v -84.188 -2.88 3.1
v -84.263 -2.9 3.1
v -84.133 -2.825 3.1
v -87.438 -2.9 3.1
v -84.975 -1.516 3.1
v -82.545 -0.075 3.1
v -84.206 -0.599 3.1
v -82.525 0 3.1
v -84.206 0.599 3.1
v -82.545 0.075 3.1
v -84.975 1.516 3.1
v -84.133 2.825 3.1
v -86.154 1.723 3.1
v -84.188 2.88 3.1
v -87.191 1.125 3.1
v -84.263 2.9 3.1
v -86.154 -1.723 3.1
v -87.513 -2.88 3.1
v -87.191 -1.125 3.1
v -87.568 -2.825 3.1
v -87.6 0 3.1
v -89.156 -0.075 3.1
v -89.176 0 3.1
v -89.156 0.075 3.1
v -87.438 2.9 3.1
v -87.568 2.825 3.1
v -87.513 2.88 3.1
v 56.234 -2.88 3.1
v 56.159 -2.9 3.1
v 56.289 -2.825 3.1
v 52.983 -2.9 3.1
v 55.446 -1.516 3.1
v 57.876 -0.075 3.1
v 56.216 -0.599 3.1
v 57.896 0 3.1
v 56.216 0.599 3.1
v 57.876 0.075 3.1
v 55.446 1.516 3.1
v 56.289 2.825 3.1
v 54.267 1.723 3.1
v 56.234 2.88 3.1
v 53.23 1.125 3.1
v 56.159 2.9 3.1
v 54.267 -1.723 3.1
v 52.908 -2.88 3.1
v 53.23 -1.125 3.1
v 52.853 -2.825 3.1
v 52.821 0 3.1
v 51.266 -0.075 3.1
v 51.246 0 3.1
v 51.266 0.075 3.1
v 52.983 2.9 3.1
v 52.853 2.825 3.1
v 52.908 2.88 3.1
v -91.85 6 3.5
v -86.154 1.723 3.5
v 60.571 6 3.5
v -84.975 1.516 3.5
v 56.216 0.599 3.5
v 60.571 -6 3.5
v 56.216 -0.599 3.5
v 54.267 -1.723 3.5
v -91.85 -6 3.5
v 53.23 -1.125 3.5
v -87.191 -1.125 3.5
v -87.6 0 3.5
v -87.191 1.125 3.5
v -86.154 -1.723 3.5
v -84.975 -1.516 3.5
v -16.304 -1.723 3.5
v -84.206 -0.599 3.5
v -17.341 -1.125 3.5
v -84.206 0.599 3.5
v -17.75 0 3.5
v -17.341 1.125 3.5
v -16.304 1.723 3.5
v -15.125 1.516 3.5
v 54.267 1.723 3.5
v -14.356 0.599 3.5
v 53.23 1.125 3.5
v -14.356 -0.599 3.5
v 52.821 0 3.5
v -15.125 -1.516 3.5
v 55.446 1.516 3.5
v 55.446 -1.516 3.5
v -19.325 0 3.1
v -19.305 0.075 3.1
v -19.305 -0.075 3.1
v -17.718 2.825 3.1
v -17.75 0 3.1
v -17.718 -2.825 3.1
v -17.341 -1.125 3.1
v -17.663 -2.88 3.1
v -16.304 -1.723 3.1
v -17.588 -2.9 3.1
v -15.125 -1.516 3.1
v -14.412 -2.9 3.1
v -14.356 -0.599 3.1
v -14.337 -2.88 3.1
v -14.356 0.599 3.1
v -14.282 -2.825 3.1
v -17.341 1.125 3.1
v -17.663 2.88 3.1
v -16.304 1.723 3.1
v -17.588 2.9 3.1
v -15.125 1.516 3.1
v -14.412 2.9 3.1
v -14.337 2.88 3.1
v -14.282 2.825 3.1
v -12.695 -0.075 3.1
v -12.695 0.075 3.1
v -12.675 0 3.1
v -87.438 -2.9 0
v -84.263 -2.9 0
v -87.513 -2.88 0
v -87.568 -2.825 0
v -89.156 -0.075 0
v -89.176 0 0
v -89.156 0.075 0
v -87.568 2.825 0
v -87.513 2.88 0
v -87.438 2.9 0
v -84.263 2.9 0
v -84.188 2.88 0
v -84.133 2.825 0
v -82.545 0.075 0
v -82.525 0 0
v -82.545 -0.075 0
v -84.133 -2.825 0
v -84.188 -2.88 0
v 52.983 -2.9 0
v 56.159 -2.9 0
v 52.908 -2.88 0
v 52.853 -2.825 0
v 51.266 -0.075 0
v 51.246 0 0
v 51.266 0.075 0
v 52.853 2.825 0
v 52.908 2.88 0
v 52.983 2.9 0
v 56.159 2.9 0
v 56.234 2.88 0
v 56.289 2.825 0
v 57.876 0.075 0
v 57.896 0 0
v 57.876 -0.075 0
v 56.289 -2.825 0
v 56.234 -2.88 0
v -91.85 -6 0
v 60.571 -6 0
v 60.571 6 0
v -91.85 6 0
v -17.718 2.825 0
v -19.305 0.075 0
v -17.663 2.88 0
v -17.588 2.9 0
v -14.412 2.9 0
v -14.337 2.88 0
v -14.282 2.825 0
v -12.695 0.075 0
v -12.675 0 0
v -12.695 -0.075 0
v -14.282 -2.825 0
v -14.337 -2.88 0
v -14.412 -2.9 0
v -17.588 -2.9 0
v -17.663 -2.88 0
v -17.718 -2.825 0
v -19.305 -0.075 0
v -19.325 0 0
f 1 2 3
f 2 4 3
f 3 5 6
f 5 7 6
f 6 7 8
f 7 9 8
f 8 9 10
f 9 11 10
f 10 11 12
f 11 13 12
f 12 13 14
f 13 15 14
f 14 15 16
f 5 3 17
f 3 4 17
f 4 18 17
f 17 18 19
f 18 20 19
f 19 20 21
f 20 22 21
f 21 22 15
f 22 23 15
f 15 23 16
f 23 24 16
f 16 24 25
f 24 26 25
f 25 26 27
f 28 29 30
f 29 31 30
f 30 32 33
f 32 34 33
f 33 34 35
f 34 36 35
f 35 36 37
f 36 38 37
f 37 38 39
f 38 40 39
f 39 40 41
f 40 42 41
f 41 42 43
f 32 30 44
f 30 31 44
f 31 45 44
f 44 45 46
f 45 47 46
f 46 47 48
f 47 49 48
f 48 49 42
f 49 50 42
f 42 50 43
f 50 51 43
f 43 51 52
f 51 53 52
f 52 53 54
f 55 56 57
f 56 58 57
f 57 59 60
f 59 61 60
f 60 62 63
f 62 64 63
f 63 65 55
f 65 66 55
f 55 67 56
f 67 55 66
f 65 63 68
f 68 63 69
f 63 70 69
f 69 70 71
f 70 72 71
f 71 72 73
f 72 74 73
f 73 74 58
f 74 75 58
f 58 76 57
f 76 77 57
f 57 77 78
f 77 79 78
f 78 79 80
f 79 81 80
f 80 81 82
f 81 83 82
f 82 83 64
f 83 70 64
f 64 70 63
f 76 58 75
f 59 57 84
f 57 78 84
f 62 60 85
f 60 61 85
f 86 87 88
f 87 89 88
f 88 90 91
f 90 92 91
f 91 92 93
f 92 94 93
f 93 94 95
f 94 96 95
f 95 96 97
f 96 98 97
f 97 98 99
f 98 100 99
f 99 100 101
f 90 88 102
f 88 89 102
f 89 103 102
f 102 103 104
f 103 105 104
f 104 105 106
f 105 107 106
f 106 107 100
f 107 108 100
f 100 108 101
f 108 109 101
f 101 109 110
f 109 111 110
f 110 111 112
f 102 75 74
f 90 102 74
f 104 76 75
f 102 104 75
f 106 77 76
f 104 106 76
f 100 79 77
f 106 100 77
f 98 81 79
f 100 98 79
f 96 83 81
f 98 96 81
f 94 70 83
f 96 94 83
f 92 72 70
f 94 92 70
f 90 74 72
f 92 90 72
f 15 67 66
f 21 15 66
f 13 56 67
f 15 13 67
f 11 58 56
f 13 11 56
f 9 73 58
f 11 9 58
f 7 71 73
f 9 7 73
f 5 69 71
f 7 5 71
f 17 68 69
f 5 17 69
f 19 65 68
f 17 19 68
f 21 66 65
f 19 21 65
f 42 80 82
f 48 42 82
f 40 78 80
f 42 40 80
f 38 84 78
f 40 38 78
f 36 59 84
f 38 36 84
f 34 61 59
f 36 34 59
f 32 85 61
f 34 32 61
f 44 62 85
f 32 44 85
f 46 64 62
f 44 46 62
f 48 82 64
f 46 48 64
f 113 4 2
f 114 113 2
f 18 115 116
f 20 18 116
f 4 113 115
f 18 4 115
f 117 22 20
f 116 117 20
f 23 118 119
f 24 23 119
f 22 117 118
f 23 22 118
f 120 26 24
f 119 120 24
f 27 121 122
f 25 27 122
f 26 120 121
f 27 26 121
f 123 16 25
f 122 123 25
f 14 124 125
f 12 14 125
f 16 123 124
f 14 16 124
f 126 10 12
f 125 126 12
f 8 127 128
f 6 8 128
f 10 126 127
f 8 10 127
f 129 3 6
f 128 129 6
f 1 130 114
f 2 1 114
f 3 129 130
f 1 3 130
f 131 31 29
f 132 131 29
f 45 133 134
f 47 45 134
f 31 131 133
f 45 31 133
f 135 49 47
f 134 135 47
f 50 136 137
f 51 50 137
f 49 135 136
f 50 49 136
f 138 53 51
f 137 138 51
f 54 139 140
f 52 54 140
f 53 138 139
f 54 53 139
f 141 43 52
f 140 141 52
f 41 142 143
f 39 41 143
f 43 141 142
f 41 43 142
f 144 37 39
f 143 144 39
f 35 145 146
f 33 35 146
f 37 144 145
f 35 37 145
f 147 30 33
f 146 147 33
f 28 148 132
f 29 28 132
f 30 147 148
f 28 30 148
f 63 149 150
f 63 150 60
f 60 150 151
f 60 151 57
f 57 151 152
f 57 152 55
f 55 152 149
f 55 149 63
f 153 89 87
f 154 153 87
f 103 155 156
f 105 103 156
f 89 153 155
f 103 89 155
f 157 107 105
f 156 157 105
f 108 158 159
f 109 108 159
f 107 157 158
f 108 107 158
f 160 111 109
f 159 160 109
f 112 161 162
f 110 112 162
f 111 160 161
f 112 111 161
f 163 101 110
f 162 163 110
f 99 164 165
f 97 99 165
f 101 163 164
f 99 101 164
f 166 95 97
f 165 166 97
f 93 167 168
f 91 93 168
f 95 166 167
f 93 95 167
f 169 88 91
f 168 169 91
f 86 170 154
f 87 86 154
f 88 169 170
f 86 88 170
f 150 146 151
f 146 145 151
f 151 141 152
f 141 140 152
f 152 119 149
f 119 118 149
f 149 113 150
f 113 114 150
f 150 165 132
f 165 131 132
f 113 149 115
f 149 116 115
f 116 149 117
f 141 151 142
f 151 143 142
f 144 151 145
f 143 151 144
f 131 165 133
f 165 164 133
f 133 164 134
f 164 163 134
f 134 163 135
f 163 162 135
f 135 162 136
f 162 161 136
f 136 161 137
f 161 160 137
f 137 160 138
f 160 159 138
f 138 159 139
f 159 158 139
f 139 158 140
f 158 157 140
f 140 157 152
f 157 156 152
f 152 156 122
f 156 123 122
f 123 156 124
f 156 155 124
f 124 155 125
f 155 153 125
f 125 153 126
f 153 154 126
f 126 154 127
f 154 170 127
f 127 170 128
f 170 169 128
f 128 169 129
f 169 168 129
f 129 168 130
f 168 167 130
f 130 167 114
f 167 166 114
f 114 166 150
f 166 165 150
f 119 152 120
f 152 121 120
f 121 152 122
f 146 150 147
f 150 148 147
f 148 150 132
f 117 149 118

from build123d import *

# Parameters (mm, degrees)
SKETCH1_W                      = 152.421392062
SKETCH1_H                      = 12
BOSS_EXTRUDE1_DEPTH            = 3.5
CUT_EXTRUDE1_DEPTH             = 3.1
CUT_EXTRUDE2_DEPTH             = 3.1
CUT_EXTRUDE3_DEPTH             = 3.1
F_3_5_3_5_DIAMETER_HOLE1_D     = 3.5
F_3_5_3_5_DIAMETER_HOLE1_DEPTH = 0.4
FILLET1_R                      = 0.150000007


with BuildPart() as part:
    # Sketch1 → Boss-Extrude1 (new body)
    with BuildSketch(Plane(origin=(0, 0, 0), x_dir=(-1, 0, 0), z_dir=(0, 0, -1))):
        with Locations((15.639629555, 0)):
            Rectangle(SKETCH1_W, SKETCH1_H)
    extrude(amount=-BOSS_EXTRUDE1_DEPTH)

    # Sketch2 → Cut-Extrude1 (cut)
    with BuildSketch(Plane(origin=(0, 0, 0), x_dir=(-1, 0, 0), z_dir=(0, 0, -1))):
        Polygon((17.674321891, -2.900007341), (19.348637675, -7.335e-06), (17.674319972, 2.899992671), (14.325688404, 2.899992671), (12.651373579, -7.889e-06), (14.325690323, -2.900007341), align=None)
    extrude(amount=-CUT_EXTRUDE1_DEPTH, mode=Mode.SUBTRACT)

    # Sketch3 → Cut-Extrude2 (cut)
    with BuildSketch(Plane(origin=(0, 0, 0), x_dir=(-1, 0, 0), z_dir=(0, 0, -1))):
        Polygon((-57.919692896, -7.889e-06), (-56.245376153, -2.900007341), (-52.896744585, -2.900007341), (-51.2224288, -7.335e-06), (-52.896746503, 2.899992671), (-56.245378072, 2.899992671), align=None)
    extrude(amount=-CUT_EXTRUDE2_DEPTH, mode=Mode.SUBTRACT)

    # Sketch4 → Cut-Extrude3 (cut)
    with BuildSketch(Plane(origin=(0, 0, 0), x_dir=(-1, 0, 0), z_dir=(0, 0, -1))):
        Polygon((82.501699166, -7.889e-06), (84.176015909, -2.900007341), (87.524647477, -2.900007341), (89.198963262, -7.335e-06), (87.524645559, 2.899992671), (84.17601399, 2.899992671), align=None)
    extrude(amount=-CUT_EXTRUDE3_DEPTH, mode=Mode.SUBTRACT)

    # Ø3.5 (3.5) Diameter Hole1
    with Locations(Plane(origin=(0, 0, 3.1), x_dir=(-1, 0, 0), z_dir=(0, 0, -1))):
        with Locations((-54.571061328, 6.781e-06), (85.850330734, 6.781e-06), (16, 0)):
            Hole(F_3_5_3_5_DIAMETER_HOLE1_D / 2, depth=F_3_5_3_5_DIAMETER_HOLE1_DEPTH)

    # Fillet1
    fillet1_edges = [part.edges().sort_by_distance(p)[0] for p in [
        (-17.674321891, -2.900007341, 1.55),
        (-14.325690323, -2.900007341, 1.55),
        (-12.651373579, -7.889e-06, 1.55),
        (-14.325688404, 2.899992671, 1.55),
        (-17.674319972, 2.899992671, 1.55),
        (-19.348637675, -7.335e-06, 1.55),
        (57.919692896, -7.889e-06, 1.55),
        (56.245378072, 2.899992671, 1.55),
        (52.896746503, 2.899992671, 1.55),
        (51.2224288, -7.335e-06, 1.55),
        (52.896744585, -2.900007341, 1.55),
        (56.245376153, -2.900007341, 1.55),
        (-82.501699166, -7.889e-06, 1.55),
        (-84.17601399, 2.899992671, 1.55),
        (-87.524645559, 2.899992671, 1.55),
        (-89.198963262, -7.335e-06, 1.55),
        (-87.524647477, -2.900007341, 1.55),
        (-84.176015909, -2.900007341, 1.55),
    ]]
    fillet(fillet1_edges, radius=FILLET1_R)


solid = part.part
